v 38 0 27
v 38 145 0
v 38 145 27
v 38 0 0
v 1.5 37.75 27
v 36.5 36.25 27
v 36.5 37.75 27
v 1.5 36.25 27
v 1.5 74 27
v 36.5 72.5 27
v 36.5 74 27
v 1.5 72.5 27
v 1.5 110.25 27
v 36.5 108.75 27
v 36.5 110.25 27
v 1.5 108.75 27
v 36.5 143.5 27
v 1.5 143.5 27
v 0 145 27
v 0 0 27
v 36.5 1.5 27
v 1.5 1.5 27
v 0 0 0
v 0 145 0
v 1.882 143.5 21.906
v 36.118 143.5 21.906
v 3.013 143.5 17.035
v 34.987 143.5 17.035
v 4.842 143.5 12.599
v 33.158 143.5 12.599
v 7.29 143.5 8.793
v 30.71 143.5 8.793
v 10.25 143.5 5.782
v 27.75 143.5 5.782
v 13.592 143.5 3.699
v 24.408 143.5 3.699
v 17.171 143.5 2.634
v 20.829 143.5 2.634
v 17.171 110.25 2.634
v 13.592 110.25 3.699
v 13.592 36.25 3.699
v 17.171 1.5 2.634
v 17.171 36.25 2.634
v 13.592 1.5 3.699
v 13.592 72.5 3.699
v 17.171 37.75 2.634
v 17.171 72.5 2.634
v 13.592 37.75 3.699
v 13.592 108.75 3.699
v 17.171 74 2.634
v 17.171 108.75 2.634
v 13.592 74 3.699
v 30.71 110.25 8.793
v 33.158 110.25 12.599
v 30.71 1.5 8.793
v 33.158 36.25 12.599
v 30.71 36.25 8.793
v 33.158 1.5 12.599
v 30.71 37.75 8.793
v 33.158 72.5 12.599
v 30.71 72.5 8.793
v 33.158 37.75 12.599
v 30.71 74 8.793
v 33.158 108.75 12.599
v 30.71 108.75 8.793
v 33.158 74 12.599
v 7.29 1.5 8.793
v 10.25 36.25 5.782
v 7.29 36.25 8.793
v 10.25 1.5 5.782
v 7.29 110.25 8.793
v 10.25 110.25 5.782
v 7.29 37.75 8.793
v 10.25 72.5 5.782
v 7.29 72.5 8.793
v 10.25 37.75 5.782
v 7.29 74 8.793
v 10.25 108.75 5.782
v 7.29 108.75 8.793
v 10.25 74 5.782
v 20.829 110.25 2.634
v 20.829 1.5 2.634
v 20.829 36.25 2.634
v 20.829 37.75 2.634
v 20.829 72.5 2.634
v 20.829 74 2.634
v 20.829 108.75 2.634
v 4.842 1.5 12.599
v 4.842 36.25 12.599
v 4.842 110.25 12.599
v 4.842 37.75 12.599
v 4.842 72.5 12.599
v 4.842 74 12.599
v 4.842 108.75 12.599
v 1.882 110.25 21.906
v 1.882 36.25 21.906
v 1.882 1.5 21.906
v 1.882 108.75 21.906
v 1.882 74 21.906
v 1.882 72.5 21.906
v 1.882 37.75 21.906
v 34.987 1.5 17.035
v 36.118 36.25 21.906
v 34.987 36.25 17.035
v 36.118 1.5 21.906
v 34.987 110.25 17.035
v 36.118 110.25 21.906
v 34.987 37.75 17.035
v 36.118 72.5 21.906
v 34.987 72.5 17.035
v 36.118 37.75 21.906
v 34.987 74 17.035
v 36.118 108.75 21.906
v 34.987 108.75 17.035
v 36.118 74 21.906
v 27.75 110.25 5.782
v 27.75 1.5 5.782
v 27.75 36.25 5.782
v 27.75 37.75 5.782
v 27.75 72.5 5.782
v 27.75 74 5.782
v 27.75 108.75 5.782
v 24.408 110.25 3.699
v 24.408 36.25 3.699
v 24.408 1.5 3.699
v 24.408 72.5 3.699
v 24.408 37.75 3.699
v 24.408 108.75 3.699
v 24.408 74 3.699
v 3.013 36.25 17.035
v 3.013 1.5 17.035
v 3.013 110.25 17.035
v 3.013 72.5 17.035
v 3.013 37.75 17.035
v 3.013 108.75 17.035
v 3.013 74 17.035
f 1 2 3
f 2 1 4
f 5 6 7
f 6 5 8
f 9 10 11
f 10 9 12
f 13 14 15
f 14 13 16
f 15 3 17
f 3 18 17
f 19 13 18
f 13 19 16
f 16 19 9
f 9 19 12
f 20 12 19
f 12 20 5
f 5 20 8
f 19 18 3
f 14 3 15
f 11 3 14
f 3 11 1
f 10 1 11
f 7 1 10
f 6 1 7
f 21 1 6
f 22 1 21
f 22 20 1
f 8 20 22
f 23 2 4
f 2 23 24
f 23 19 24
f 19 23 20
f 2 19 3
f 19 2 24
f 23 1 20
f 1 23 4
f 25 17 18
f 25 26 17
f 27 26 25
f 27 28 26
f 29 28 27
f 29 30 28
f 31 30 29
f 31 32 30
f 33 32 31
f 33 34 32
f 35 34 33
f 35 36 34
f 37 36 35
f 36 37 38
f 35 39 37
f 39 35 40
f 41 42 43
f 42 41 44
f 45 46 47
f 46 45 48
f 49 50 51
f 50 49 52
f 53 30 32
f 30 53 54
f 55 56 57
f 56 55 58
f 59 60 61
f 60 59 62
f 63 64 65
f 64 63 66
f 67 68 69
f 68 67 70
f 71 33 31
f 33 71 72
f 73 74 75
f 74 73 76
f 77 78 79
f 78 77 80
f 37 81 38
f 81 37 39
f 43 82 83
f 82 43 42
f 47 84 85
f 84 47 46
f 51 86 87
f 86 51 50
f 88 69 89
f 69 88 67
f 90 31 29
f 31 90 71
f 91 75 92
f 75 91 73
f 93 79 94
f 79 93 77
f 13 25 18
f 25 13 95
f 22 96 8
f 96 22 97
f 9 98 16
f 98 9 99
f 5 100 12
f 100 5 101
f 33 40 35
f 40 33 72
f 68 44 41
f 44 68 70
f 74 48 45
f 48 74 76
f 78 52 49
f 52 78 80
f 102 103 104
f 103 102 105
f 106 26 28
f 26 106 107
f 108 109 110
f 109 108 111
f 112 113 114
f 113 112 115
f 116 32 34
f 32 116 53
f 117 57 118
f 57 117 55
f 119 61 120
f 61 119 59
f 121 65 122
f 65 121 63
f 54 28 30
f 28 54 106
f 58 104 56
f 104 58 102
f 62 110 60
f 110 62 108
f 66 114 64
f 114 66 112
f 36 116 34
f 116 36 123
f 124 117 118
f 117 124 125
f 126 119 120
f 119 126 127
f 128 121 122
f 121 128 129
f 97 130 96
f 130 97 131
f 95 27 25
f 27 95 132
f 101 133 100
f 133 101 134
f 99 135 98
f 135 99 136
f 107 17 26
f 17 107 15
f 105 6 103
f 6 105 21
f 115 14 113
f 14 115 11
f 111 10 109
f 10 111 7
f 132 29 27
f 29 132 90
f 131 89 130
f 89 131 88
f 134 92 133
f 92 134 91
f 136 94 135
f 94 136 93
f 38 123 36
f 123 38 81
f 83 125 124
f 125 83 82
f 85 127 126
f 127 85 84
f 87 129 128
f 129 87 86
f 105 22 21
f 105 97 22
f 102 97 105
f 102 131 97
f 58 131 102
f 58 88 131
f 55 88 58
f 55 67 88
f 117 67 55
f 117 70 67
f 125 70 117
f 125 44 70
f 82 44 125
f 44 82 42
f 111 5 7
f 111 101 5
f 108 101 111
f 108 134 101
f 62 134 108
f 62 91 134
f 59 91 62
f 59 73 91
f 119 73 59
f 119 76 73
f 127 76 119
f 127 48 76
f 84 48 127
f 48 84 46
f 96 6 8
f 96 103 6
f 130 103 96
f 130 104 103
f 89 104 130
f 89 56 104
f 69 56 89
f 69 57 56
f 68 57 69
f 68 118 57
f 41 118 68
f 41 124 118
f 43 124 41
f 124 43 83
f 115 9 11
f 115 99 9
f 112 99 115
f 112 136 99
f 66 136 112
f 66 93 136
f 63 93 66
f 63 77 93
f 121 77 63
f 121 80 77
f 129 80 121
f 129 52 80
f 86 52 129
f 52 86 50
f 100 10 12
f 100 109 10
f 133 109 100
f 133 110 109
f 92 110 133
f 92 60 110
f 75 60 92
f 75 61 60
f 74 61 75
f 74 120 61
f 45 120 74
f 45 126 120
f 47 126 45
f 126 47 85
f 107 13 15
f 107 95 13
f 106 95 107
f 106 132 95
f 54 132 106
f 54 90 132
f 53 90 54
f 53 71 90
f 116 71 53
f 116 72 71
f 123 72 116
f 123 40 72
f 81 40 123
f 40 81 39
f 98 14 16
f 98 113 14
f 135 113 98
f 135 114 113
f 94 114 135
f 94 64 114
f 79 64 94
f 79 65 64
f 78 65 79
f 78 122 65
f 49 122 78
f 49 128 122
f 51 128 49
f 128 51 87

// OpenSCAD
/* [Box Parameters] */


boxWidth = 38;
boxDepth = 145;
boxHeight = 27;
cylinderHeight = 35;
wallThick = 1.5;


difference() {
    cube([boxWidth,boxDepth,boxHeight]);
    color("blue") scale([1,1,1.4]) translate([boxWidth/2, boxDepth-wallThick , boxHeight/1.4]) rotate ([90, 0,0]) cylinder(h=boxDepth-wallThick*2, d=boxWidth-wallThick*2);

}


color("red") translate([0, boxDepth/4, 0]) cube([boxWidth,wallThick,boxHeight]);

color("red") translate([0, boxDepth/4*2, 0]) cube([boxWidth,wallThick,boxHeight]);

color("red") translate([0, boxDepth/4*3., 0]) cube([boxWidth,wallThick,boxHeight]);
